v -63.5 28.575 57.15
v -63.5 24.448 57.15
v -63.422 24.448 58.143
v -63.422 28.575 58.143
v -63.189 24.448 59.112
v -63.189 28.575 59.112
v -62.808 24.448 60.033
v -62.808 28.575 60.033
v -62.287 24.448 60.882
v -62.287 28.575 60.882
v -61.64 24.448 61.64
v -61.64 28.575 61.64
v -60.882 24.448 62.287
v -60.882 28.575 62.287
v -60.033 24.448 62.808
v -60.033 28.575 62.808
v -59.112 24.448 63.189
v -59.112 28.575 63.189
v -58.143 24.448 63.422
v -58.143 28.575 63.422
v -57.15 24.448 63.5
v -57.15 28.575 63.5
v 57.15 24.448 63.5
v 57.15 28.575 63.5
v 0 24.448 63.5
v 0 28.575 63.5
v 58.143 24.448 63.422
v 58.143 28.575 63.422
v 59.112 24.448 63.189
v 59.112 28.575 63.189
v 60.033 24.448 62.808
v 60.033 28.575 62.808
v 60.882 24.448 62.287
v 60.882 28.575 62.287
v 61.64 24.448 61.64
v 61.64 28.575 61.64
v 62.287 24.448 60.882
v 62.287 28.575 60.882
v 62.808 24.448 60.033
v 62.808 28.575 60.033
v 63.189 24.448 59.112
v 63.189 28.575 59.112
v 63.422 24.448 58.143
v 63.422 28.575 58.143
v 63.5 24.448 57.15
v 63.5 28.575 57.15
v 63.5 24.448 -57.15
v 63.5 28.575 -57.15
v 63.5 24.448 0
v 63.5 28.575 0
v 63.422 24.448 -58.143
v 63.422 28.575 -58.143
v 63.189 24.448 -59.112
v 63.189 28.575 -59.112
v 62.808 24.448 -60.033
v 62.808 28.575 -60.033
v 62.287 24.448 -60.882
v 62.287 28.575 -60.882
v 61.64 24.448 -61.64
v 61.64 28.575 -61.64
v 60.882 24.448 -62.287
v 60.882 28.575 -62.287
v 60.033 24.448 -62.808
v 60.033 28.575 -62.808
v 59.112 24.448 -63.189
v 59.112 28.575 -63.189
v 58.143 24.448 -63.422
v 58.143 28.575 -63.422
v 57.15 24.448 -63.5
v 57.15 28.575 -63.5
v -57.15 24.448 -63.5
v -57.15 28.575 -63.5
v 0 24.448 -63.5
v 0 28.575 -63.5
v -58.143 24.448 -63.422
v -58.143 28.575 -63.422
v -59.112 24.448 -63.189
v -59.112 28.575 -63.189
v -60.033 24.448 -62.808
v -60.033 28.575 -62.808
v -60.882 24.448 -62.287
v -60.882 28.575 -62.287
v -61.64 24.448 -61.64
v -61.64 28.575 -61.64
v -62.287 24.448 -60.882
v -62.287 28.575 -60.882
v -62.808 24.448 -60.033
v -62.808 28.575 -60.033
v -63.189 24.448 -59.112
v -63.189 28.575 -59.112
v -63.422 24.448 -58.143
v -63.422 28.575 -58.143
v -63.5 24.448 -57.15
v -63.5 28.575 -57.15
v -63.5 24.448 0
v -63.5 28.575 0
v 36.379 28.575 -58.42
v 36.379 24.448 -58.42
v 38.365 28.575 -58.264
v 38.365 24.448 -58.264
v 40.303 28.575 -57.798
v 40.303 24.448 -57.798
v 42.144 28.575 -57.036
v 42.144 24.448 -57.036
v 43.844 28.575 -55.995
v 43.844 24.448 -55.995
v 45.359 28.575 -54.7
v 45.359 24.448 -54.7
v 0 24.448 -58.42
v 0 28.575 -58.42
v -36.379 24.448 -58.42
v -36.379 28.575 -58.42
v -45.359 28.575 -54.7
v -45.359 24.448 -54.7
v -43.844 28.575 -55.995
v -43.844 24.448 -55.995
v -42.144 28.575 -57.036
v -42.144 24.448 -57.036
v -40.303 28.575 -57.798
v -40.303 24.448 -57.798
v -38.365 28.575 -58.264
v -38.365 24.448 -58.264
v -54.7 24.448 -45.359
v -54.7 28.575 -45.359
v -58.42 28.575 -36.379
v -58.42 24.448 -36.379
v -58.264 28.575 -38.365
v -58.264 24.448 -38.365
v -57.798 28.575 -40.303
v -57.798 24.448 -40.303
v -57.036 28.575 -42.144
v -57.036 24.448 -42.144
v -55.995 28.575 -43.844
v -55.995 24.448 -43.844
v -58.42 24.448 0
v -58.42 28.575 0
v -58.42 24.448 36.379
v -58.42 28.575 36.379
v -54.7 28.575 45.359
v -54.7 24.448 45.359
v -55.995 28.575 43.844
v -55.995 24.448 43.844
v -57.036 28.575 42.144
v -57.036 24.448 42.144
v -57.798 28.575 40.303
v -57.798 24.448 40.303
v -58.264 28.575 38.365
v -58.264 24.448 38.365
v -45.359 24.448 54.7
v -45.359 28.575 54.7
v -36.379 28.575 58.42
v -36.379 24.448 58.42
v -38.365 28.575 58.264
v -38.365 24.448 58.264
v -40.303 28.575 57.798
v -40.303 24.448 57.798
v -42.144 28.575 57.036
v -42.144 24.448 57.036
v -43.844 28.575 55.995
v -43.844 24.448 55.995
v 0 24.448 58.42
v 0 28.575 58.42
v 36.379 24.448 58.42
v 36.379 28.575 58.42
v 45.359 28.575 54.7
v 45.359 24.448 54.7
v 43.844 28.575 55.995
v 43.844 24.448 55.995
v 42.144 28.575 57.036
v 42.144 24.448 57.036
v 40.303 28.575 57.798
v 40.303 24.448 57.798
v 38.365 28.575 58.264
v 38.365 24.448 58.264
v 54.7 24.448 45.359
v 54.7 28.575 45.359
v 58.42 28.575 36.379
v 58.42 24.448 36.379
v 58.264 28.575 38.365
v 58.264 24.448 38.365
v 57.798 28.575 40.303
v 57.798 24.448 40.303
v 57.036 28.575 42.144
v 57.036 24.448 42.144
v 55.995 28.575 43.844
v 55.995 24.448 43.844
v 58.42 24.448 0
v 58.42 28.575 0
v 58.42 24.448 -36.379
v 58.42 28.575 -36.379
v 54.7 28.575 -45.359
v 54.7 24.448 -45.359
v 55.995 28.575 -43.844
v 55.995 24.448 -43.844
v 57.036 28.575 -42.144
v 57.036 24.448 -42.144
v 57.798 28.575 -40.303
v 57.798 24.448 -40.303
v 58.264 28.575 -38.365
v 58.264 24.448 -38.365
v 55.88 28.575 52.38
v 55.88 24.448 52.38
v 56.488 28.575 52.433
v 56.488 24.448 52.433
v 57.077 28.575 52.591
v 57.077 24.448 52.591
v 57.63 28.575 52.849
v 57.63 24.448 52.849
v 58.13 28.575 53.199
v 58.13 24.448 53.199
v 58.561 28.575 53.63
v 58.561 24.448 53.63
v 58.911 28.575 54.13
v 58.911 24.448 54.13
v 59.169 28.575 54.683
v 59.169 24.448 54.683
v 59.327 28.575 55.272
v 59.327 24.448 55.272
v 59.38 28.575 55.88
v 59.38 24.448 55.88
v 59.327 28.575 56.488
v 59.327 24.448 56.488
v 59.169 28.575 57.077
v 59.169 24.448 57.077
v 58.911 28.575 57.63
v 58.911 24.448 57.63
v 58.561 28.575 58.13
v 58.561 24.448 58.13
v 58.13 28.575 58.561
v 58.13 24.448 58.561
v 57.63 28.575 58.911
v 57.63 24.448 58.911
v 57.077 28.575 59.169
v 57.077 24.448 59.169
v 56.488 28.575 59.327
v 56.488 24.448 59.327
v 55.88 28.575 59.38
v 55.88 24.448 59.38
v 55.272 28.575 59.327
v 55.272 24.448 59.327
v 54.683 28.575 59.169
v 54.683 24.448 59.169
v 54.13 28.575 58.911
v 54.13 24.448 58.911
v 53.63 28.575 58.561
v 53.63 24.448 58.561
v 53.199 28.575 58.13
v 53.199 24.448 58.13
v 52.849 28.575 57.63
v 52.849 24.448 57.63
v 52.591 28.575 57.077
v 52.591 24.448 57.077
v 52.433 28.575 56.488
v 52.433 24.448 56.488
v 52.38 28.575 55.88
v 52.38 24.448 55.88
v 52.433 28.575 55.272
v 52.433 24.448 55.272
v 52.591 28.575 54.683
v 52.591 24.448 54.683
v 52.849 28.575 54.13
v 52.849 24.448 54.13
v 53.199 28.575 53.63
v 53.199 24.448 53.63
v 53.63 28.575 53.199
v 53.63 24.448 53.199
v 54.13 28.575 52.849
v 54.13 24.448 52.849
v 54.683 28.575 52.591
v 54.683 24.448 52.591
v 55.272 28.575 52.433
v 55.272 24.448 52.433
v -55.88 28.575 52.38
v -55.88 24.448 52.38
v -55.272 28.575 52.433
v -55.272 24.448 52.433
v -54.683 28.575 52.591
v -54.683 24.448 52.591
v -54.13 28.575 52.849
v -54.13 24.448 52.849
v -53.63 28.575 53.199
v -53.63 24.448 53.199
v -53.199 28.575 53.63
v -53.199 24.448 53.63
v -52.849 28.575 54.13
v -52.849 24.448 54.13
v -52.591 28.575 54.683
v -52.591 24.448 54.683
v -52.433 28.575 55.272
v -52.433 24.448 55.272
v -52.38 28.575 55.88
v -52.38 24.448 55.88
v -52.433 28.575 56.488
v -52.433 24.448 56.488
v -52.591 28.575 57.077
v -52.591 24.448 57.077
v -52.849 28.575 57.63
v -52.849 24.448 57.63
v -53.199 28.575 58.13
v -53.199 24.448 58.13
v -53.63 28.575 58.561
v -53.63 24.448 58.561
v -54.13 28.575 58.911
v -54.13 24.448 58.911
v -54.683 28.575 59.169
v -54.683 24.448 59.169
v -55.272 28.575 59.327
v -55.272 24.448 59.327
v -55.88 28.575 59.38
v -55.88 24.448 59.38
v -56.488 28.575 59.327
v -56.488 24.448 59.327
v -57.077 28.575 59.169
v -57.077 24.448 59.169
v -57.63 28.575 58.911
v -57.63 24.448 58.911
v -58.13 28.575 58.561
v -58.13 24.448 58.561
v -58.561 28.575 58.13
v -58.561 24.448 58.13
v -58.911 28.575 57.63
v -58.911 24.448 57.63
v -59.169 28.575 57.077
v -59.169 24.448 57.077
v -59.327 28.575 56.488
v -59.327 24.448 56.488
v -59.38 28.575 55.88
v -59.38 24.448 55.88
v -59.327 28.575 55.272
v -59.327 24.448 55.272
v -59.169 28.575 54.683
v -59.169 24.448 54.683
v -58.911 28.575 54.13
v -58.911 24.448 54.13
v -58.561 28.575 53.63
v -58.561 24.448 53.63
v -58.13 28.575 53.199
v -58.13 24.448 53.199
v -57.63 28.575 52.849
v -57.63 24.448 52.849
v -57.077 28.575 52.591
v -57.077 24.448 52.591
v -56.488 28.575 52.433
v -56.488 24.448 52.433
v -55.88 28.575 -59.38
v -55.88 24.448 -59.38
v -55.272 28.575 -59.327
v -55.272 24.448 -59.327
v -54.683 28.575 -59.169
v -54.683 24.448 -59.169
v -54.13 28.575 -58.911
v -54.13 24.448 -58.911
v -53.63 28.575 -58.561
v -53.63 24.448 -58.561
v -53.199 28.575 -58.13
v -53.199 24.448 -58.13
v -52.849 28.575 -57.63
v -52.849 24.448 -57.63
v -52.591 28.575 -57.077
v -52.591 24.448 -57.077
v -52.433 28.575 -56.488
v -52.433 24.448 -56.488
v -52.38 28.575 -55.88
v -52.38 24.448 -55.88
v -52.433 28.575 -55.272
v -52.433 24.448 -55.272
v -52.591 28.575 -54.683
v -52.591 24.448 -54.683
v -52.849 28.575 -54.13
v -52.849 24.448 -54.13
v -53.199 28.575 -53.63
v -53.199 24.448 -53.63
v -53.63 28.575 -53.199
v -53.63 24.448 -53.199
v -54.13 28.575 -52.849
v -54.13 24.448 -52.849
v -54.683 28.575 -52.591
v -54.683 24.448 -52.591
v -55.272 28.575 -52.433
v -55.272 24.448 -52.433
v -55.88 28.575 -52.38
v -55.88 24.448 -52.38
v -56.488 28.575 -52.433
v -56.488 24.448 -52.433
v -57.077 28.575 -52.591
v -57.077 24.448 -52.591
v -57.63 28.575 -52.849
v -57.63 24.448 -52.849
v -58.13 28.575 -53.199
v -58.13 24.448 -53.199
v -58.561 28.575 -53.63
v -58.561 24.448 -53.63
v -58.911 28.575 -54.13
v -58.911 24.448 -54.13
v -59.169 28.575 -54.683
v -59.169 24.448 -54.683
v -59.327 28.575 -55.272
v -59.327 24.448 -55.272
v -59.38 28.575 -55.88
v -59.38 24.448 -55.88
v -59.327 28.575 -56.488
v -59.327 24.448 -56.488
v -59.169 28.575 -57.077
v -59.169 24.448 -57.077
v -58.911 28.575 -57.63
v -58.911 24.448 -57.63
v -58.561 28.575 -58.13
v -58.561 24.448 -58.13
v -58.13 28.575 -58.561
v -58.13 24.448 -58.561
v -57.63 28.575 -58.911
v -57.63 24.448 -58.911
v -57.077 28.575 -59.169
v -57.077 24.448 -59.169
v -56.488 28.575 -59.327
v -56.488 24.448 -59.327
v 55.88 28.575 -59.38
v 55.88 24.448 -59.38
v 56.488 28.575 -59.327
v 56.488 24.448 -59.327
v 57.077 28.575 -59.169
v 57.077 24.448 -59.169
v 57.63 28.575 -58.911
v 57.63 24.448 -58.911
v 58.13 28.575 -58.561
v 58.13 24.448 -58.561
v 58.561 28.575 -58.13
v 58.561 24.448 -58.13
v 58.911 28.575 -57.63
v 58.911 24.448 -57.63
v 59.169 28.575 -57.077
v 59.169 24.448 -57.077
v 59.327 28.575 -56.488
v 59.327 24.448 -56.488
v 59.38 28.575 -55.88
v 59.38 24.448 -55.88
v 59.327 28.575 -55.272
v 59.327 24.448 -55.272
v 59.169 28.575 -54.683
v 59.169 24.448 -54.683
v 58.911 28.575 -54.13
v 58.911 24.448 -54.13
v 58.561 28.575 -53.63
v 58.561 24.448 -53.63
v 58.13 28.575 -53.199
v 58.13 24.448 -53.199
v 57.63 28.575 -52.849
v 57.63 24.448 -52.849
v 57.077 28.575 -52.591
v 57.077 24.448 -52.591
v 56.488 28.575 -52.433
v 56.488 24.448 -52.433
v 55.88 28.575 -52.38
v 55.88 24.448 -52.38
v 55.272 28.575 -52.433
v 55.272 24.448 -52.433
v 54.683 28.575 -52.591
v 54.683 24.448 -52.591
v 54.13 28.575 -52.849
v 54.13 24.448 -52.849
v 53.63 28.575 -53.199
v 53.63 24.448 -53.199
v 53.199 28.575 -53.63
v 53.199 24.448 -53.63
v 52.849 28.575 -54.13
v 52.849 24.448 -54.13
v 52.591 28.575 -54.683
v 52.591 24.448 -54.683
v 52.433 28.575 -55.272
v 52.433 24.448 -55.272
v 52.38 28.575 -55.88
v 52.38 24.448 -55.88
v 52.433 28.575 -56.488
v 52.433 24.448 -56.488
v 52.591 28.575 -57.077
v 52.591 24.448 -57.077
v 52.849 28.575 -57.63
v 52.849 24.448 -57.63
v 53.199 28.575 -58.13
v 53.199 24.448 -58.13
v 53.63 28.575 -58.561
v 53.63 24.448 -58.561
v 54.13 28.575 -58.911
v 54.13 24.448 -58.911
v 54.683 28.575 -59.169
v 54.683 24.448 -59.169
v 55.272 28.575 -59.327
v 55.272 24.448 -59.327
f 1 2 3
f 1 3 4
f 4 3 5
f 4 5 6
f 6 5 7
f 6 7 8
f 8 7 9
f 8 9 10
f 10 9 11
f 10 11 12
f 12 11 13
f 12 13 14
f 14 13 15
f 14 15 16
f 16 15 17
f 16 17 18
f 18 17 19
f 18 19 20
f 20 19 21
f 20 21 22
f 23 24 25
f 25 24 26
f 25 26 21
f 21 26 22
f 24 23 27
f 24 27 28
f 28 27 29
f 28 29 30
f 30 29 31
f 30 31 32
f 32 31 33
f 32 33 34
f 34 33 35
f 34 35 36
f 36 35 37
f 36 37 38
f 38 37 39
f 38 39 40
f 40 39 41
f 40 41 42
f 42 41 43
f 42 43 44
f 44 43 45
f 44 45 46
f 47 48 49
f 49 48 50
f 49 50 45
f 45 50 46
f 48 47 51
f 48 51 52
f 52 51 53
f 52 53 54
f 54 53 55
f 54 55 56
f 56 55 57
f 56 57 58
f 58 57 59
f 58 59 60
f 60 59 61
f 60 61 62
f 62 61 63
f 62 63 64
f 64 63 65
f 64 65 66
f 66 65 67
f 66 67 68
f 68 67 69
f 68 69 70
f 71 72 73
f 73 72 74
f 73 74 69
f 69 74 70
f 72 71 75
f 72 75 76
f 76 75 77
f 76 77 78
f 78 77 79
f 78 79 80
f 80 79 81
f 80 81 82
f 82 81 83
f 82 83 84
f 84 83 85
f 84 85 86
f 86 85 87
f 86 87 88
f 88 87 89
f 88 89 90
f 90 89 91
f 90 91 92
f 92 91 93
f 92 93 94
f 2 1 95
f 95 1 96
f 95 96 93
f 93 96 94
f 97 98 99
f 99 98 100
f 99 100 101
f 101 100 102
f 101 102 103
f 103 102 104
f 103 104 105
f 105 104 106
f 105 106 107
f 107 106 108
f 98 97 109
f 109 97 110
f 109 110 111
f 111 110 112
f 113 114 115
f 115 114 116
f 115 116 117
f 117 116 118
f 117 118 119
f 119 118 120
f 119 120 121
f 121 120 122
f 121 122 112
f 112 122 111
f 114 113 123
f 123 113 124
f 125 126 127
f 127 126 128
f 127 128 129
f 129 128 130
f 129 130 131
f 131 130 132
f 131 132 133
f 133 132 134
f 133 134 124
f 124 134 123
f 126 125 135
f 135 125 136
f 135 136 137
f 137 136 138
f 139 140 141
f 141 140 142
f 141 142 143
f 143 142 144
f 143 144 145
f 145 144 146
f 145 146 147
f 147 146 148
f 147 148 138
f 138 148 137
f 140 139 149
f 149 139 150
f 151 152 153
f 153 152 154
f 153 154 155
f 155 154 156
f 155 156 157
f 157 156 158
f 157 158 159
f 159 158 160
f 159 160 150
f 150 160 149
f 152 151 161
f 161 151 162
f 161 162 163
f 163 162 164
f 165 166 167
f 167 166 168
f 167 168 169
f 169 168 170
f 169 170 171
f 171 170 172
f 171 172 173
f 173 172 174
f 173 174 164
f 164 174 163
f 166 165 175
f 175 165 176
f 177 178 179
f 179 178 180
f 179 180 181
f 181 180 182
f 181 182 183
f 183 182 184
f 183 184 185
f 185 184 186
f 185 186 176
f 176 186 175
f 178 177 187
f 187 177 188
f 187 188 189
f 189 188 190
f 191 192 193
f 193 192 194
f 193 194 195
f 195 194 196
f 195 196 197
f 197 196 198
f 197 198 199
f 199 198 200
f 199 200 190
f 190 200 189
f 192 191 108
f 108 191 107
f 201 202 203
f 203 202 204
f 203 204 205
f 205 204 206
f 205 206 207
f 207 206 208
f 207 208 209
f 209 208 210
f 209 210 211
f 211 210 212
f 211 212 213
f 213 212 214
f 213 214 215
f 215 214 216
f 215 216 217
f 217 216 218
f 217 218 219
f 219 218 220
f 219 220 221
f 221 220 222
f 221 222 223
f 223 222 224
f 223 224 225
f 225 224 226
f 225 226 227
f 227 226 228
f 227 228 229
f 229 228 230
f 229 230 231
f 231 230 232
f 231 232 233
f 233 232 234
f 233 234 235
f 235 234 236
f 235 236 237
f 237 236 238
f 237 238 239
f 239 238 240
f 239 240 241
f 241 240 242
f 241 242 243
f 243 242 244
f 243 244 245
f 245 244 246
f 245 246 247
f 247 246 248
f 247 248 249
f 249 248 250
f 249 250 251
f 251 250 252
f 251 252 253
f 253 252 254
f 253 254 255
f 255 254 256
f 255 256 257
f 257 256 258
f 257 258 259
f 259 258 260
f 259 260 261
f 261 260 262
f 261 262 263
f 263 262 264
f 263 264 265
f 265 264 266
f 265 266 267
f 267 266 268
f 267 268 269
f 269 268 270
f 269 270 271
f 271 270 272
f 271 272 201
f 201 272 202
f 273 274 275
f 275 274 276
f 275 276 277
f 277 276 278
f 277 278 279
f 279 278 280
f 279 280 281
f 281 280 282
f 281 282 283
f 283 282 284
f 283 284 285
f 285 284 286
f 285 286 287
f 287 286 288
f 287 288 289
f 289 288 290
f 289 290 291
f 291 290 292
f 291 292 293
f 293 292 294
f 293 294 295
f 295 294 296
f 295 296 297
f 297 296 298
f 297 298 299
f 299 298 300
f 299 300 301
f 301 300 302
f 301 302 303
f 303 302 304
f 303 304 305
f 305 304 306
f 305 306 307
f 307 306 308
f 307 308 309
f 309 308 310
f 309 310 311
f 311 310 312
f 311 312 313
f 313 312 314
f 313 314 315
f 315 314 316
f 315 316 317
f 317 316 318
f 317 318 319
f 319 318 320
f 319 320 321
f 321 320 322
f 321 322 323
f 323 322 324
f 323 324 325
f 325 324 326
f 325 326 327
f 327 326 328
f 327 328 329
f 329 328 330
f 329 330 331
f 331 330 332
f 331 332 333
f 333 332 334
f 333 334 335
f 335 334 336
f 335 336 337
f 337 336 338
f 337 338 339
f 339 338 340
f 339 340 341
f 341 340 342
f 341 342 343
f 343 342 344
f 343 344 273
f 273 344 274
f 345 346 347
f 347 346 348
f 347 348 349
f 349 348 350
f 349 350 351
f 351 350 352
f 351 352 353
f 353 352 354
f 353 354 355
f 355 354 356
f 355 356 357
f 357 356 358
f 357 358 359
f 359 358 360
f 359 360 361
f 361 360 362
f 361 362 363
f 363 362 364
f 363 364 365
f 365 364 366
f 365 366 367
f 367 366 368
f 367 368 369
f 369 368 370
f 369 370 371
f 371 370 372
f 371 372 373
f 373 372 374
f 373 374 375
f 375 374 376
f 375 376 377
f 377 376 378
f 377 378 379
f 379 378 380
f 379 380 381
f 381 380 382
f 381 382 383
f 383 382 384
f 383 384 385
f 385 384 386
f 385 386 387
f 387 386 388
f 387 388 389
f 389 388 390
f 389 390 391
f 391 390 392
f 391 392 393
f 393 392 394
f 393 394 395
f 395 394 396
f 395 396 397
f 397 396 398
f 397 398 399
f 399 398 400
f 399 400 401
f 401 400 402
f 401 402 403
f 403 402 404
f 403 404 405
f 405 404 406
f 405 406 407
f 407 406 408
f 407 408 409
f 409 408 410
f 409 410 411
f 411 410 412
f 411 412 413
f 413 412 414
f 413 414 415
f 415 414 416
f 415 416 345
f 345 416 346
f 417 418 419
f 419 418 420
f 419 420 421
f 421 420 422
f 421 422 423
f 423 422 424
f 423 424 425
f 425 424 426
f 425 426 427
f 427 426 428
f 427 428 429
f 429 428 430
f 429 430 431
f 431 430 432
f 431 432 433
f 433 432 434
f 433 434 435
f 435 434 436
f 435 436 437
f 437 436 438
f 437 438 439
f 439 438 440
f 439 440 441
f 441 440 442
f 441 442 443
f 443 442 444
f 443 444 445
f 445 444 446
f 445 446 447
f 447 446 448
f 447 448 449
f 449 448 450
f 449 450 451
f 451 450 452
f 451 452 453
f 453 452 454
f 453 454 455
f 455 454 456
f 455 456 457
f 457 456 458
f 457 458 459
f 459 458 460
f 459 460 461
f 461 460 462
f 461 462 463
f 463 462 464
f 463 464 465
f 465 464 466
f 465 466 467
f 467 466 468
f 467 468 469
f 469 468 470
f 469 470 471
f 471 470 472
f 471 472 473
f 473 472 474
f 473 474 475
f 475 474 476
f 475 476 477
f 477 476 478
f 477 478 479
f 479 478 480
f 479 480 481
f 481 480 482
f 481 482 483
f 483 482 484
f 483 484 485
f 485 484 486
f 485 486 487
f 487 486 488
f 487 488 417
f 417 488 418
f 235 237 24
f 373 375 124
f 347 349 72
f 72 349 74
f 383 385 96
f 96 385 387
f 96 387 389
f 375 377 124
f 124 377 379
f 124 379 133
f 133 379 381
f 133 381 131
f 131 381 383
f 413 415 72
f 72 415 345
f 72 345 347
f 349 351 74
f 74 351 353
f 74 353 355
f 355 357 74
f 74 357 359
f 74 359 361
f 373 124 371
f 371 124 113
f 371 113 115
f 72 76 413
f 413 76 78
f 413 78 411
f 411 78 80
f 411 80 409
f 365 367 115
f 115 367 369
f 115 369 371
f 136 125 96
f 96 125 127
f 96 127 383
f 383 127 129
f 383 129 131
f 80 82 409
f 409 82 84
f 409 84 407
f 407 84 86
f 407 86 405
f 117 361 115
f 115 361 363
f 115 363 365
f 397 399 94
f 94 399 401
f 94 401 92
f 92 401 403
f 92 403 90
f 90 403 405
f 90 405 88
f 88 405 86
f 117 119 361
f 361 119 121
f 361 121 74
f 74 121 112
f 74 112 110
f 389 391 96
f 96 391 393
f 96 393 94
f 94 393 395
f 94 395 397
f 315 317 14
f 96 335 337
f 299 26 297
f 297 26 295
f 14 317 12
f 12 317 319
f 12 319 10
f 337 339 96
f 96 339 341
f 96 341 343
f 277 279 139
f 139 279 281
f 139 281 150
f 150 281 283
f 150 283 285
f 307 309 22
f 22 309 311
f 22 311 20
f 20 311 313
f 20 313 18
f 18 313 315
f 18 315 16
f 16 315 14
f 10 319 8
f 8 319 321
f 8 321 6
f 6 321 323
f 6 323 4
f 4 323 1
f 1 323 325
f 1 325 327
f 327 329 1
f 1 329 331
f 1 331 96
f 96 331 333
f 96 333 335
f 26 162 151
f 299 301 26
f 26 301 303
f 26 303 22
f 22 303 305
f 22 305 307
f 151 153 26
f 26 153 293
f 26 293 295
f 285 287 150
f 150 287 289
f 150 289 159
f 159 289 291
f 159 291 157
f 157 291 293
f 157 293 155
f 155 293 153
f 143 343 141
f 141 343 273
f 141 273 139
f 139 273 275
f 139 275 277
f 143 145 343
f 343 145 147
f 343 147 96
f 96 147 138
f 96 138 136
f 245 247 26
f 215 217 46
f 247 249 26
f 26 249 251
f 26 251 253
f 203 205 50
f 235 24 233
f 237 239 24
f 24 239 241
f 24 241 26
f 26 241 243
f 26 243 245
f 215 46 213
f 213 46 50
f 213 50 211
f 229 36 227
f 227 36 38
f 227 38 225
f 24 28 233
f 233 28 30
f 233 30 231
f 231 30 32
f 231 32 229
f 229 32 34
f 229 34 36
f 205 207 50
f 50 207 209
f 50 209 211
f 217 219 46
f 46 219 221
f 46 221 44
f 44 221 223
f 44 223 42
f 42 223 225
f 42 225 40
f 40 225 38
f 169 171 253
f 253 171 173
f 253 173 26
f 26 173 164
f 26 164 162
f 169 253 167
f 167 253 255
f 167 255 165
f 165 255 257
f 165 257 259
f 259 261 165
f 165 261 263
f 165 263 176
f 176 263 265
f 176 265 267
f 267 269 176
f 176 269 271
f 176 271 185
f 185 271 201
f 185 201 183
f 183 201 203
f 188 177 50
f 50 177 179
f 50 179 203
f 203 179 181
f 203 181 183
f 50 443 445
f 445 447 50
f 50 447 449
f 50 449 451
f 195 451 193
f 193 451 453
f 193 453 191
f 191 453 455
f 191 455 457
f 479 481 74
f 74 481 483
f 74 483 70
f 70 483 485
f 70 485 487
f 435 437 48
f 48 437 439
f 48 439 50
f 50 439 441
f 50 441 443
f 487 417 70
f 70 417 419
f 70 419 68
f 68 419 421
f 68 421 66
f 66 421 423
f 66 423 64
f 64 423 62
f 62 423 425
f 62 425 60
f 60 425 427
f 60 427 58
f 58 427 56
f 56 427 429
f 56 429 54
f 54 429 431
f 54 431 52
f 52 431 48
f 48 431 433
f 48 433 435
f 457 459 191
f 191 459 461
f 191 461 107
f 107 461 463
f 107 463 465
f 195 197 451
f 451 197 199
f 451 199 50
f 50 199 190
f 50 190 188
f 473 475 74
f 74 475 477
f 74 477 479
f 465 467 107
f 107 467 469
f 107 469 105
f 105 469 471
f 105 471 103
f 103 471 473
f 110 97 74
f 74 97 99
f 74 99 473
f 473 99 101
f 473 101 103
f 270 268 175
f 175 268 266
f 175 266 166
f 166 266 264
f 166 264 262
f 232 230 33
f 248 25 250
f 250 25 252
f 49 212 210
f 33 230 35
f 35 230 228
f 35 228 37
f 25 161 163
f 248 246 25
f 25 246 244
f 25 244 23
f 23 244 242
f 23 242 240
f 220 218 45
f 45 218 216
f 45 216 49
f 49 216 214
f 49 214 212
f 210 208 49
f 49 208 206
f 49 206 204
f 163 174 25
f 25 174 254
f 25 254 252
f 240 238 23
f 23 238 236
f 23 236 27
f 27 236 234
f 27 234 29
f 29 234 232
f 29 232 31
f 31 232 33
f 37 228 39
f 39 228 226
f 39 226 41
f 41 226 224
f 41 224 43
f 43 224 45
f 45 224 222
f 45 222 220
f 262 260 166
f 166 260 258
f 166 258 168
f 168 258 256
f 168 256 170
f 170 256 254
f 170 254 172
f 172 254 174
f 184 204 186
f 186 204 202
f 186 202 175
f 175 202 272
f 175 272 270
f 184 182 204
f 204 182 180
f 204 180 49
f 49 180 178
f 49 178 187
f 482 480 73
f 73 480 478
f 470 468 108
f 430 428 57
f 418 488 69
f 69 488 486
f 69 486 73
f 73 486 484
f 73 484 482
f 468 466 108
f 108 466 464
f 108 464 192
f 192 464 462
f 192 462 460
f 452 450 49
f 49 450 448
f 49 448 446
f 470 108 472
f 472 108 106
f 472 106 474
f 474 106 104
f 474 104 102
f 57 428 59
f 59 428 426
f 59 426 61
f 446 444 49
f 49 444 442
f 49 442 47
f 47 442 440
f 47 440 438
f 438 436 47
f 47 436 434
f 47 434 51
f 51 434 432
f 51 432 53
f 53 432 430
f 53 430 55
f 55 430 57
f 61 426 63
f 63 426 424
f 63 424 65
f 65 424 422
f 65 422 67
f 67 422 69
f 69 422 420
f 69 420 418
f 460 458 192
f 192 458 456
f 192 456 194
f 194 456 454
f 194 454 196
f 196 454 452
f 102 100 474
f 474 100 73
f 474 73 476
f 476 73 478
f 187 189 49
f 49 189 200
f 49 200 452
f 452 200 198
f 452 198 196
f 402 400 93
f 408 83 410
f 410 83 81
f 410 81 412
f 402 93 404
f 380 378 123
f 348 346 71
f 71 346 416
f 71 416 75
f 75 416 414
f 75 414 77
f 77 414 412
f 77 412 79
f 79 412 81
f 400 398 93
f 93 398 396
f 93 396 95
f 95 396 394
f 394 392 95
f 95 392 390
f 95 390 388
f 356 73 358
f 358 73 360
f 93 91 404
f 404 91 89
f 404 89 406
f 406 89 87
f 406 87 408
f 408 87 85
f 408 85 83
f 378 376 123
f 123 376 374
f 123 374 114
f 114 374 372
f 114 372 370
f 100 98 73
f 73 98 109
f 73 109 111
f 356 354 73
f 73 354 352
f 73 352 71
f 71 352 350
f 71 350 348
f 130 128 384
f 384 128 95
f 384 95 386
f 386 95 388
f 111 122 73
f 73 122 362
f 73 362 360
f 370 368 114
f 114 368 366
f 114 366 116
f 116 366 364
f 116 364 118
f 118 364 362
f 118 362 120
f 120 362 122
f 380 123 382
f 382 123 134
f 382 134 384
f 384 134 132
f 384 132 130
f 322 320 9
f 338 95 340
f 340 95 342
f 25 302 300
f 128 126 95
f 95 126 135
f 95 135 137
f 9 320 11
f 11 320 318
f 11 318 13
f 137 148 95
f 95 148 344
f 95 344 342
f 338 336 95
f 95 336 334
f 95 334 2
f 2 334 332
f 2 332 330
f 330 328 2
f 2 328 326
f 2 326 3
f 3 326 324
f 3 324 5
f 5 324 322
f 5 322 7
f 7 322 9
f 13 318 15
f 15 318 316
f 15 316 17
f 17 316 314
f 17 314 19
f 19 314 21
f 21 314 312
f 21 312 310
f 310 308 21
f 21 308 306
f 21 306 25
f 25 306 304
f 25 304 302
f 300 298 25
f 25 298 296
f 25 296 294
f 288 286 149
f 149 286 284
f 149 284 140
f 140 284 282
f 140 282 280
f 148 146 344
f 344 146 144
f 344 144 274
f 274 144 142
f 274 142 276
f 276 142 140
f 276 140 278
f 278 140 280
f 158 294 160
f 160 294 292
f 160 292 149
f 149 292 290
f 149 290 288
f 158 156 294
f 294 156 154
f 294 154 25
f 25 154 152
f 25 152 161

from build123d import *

# Parameters (mm, degrees)
SKETCH1_R                      = 44.45
SKETCH1_R_2                    = 3.25
BOSS_EXTRUDE1_DEPTH            = 3.175
BOSS_EXTRUDE2_DEPTH            = 25.4
CBORE_FOR_M6_SHCS2_D           = 7
CBORE_FOR_M6_SHCS2_CBORE_D     = 11
CBORE_FOR_M6_SHCS2_CBORE_DEPTH = 6
SKETCH10_W                     = 206.275362682
SKETCH10_H                     = 234.398565581
CUT_EXTRUDE1_DEPTH             = 15.2875
CUT_EXTRUDE1_DEPTH_BACK        = 10.16


with BuildPart() as part:
    # Sketch1 → Boss-Extrude1 (new body)
    with BuildSketch(Plane(origin=(0, 0, 0), x_dir=(1, 0, 0), z_dir=(0, 1, 0))):
        with BuildLine():
            Line((-57.15, 63.5), (57.15, 63.5))
            ThreePointArc((57.15, 63.5), (61.640128061, 61.640128061), (63.5, 57.15))
            Line((63.5, 57.15), (63.5, -57.15))
            ThreePointArc((63.5, -57.15), (61.640128061, -61.640128061), (57.15, -63.5))
            Line((57.15, -63.5), (-57.15, -63.5))
            ThreePointArc((-57.15, -63.5), (-61.640128061, -61.640128061), (-63.5, -57.15))
            Line((-63.5, -57.15), (-63.5, 57.15))
            ThreePointArc((-63.5, 57.15), (-61.640128061, 61.640128061), (-57.15, 63.5))
        make_face()
        Circle(SKETCH1_R, mode=Mode.SUBTRACT)
        with Locations((-57.15, 53.975)):
            Circle(SKETCH1_R_2, mode=Mode.SUBTRACT)
        with Locations((57.15, 53.975)):
            Circle(SKETCH1_R_2, mode=Mode.SUBTRACT)
        with Locations((57.15, -53.975)):
            Circle(SKETCH1_R_2, mode=Mode.SUBTRACT)
        with Locations((-57.15, -53.975)):
            Circle(SKETCH1_R_2, mode=Mode.SUBTRACT)
    extrude(amount=BOSS_EXTRUDE1_DEPTH)

    # Sketch3 → Boss-Extrude2 (add)
    with BuildSketch(Plane(origin=(0, 3.175, 0), x_dir=(1, 0, 0), z_dir=(0, 1, 0))):
        with BuildLine():
            Line((-57.15, -63.5), (57.15, -63.5))
            ThreePointArc((57.15, -63.5), (61.640128061, -61.640128061), (63.5, -57.15))
            Line((63.5, -57.15), (63.5, 57.15))
            ThreePointArc((63.5, 57.15), (61.640128061, 61.640128061), (57.15, 63.5))
            Line((57.15, 63.5), (-57.15, 63.5))
            ThreePointArc((-57.15, 63.5), (-61.640128061, 61.640128061), (-63.5, 57.15))
            Line((-63.5, 57.15), (-63.5, -57.15))
            ThreePointArc((-63.5, -57.15), (-61.640128061, -61.640128061), (-57.15, -63.5))
        make_face()
        with BuildLine():
            Line((-54.700256121, 45.358975516), (-45.358975516, 54.700256121))
            ThreePointArc((-45.358975516, 54.700256121), (-41.238798986, 57.453270063), (-36.378719395, 58.42))
            Line((-36.378719395, 58.42), (36.378719395, 58.42))
            ThreePointArc((36.378719395, 58.42), (41.238798986, 57.453270063), (45.358975516, 54.700256121))
            Line((45.358975516, 54.700256121), (54.700256121, 45.358975516))
            ThreePointArc((54.700256121, 45.358975516), (57.453270063, 41.238798986), (58.42, 36.378719395))
            Line((58.42, 36.378719395), (58.42, -36.378719395))
            ThreePointArc((58.42, -36.378719395), (57.453270063, -41.238798986), (54.700256121, -45.358975516))
            Line((54.700256121, -45.358975516), (45.358975516, -54.700256121))
            ThreePointArc((45.358975516, -54.700256121), (41.238798986, -57.453270063), (36.378719395, -58.42))
            Line((36.378719395, -58.42), (-36.378719395, -58.42))
            ThreePointArc((-36.378719395, -58.42), (-41.238798986, -57.453270063), (-45.358975516, -54.700256121))
            Line((-45.358975516, -54.700256121), (-54.700256121, -45.358975516))
            ThreePointArc((-54.700256121, -45.358975516), (-57.453270063, -41.238798986), (-58.42, -36.378719395))
            Line((-58.42, -36.378719395), (-58.42, 36.378719395))
            ThreePointArc((-58.42, 36.378719395), (-57.453270063, 41.238798986), (-54.700256121, 45.358975516))
        make_face(mode=Mode.SUBTRACT)
    extrude(amount=BOSS_EXTRUDE2_DEPTH)

    # CBORE for M6 SHCS2 (through all)
    with Locations(Plane(origin=(0, 0, 0), x_dir=(-1, 0, 0), z_dir=(0, -1, 0))):
        with Locations((-55.88, 55.88), (55.88, 55.88), (55.88, -55.88), (-55.88, -55.88)):
            CounterBoreHole(CBORE_FOR_M6_SHCS2_D / 2, CBORE_FOR_M6_SHCS2_CBORE_D / 2, CBORE_FOR_M6_SHCS2_CBORE_DEPTH)

    # Sketch10 → Cut-Extrude1 (cut, two sides)
    with BuildSketch(Plane(origin=(0, 14.2875, 0), x_dir=(-1, 0, 0), z_dir=(0, -1, 0))) as cut_extrude1_sk:
        with Locations((4.587579463, 2.84706708)):
            Rectangle(SKETCH10_W, SKETCH10_H)
    extrude(amount=CUT_EXTRUDE1_DEPTH, mode=Mode.SUBTRACT)
    extrude(cut_extrude1_sk.sketch, amount=-CUT_EXTRUDE1_DEPTH_BACK, mode=Mode.SUBTRACT)


solid = part.part
